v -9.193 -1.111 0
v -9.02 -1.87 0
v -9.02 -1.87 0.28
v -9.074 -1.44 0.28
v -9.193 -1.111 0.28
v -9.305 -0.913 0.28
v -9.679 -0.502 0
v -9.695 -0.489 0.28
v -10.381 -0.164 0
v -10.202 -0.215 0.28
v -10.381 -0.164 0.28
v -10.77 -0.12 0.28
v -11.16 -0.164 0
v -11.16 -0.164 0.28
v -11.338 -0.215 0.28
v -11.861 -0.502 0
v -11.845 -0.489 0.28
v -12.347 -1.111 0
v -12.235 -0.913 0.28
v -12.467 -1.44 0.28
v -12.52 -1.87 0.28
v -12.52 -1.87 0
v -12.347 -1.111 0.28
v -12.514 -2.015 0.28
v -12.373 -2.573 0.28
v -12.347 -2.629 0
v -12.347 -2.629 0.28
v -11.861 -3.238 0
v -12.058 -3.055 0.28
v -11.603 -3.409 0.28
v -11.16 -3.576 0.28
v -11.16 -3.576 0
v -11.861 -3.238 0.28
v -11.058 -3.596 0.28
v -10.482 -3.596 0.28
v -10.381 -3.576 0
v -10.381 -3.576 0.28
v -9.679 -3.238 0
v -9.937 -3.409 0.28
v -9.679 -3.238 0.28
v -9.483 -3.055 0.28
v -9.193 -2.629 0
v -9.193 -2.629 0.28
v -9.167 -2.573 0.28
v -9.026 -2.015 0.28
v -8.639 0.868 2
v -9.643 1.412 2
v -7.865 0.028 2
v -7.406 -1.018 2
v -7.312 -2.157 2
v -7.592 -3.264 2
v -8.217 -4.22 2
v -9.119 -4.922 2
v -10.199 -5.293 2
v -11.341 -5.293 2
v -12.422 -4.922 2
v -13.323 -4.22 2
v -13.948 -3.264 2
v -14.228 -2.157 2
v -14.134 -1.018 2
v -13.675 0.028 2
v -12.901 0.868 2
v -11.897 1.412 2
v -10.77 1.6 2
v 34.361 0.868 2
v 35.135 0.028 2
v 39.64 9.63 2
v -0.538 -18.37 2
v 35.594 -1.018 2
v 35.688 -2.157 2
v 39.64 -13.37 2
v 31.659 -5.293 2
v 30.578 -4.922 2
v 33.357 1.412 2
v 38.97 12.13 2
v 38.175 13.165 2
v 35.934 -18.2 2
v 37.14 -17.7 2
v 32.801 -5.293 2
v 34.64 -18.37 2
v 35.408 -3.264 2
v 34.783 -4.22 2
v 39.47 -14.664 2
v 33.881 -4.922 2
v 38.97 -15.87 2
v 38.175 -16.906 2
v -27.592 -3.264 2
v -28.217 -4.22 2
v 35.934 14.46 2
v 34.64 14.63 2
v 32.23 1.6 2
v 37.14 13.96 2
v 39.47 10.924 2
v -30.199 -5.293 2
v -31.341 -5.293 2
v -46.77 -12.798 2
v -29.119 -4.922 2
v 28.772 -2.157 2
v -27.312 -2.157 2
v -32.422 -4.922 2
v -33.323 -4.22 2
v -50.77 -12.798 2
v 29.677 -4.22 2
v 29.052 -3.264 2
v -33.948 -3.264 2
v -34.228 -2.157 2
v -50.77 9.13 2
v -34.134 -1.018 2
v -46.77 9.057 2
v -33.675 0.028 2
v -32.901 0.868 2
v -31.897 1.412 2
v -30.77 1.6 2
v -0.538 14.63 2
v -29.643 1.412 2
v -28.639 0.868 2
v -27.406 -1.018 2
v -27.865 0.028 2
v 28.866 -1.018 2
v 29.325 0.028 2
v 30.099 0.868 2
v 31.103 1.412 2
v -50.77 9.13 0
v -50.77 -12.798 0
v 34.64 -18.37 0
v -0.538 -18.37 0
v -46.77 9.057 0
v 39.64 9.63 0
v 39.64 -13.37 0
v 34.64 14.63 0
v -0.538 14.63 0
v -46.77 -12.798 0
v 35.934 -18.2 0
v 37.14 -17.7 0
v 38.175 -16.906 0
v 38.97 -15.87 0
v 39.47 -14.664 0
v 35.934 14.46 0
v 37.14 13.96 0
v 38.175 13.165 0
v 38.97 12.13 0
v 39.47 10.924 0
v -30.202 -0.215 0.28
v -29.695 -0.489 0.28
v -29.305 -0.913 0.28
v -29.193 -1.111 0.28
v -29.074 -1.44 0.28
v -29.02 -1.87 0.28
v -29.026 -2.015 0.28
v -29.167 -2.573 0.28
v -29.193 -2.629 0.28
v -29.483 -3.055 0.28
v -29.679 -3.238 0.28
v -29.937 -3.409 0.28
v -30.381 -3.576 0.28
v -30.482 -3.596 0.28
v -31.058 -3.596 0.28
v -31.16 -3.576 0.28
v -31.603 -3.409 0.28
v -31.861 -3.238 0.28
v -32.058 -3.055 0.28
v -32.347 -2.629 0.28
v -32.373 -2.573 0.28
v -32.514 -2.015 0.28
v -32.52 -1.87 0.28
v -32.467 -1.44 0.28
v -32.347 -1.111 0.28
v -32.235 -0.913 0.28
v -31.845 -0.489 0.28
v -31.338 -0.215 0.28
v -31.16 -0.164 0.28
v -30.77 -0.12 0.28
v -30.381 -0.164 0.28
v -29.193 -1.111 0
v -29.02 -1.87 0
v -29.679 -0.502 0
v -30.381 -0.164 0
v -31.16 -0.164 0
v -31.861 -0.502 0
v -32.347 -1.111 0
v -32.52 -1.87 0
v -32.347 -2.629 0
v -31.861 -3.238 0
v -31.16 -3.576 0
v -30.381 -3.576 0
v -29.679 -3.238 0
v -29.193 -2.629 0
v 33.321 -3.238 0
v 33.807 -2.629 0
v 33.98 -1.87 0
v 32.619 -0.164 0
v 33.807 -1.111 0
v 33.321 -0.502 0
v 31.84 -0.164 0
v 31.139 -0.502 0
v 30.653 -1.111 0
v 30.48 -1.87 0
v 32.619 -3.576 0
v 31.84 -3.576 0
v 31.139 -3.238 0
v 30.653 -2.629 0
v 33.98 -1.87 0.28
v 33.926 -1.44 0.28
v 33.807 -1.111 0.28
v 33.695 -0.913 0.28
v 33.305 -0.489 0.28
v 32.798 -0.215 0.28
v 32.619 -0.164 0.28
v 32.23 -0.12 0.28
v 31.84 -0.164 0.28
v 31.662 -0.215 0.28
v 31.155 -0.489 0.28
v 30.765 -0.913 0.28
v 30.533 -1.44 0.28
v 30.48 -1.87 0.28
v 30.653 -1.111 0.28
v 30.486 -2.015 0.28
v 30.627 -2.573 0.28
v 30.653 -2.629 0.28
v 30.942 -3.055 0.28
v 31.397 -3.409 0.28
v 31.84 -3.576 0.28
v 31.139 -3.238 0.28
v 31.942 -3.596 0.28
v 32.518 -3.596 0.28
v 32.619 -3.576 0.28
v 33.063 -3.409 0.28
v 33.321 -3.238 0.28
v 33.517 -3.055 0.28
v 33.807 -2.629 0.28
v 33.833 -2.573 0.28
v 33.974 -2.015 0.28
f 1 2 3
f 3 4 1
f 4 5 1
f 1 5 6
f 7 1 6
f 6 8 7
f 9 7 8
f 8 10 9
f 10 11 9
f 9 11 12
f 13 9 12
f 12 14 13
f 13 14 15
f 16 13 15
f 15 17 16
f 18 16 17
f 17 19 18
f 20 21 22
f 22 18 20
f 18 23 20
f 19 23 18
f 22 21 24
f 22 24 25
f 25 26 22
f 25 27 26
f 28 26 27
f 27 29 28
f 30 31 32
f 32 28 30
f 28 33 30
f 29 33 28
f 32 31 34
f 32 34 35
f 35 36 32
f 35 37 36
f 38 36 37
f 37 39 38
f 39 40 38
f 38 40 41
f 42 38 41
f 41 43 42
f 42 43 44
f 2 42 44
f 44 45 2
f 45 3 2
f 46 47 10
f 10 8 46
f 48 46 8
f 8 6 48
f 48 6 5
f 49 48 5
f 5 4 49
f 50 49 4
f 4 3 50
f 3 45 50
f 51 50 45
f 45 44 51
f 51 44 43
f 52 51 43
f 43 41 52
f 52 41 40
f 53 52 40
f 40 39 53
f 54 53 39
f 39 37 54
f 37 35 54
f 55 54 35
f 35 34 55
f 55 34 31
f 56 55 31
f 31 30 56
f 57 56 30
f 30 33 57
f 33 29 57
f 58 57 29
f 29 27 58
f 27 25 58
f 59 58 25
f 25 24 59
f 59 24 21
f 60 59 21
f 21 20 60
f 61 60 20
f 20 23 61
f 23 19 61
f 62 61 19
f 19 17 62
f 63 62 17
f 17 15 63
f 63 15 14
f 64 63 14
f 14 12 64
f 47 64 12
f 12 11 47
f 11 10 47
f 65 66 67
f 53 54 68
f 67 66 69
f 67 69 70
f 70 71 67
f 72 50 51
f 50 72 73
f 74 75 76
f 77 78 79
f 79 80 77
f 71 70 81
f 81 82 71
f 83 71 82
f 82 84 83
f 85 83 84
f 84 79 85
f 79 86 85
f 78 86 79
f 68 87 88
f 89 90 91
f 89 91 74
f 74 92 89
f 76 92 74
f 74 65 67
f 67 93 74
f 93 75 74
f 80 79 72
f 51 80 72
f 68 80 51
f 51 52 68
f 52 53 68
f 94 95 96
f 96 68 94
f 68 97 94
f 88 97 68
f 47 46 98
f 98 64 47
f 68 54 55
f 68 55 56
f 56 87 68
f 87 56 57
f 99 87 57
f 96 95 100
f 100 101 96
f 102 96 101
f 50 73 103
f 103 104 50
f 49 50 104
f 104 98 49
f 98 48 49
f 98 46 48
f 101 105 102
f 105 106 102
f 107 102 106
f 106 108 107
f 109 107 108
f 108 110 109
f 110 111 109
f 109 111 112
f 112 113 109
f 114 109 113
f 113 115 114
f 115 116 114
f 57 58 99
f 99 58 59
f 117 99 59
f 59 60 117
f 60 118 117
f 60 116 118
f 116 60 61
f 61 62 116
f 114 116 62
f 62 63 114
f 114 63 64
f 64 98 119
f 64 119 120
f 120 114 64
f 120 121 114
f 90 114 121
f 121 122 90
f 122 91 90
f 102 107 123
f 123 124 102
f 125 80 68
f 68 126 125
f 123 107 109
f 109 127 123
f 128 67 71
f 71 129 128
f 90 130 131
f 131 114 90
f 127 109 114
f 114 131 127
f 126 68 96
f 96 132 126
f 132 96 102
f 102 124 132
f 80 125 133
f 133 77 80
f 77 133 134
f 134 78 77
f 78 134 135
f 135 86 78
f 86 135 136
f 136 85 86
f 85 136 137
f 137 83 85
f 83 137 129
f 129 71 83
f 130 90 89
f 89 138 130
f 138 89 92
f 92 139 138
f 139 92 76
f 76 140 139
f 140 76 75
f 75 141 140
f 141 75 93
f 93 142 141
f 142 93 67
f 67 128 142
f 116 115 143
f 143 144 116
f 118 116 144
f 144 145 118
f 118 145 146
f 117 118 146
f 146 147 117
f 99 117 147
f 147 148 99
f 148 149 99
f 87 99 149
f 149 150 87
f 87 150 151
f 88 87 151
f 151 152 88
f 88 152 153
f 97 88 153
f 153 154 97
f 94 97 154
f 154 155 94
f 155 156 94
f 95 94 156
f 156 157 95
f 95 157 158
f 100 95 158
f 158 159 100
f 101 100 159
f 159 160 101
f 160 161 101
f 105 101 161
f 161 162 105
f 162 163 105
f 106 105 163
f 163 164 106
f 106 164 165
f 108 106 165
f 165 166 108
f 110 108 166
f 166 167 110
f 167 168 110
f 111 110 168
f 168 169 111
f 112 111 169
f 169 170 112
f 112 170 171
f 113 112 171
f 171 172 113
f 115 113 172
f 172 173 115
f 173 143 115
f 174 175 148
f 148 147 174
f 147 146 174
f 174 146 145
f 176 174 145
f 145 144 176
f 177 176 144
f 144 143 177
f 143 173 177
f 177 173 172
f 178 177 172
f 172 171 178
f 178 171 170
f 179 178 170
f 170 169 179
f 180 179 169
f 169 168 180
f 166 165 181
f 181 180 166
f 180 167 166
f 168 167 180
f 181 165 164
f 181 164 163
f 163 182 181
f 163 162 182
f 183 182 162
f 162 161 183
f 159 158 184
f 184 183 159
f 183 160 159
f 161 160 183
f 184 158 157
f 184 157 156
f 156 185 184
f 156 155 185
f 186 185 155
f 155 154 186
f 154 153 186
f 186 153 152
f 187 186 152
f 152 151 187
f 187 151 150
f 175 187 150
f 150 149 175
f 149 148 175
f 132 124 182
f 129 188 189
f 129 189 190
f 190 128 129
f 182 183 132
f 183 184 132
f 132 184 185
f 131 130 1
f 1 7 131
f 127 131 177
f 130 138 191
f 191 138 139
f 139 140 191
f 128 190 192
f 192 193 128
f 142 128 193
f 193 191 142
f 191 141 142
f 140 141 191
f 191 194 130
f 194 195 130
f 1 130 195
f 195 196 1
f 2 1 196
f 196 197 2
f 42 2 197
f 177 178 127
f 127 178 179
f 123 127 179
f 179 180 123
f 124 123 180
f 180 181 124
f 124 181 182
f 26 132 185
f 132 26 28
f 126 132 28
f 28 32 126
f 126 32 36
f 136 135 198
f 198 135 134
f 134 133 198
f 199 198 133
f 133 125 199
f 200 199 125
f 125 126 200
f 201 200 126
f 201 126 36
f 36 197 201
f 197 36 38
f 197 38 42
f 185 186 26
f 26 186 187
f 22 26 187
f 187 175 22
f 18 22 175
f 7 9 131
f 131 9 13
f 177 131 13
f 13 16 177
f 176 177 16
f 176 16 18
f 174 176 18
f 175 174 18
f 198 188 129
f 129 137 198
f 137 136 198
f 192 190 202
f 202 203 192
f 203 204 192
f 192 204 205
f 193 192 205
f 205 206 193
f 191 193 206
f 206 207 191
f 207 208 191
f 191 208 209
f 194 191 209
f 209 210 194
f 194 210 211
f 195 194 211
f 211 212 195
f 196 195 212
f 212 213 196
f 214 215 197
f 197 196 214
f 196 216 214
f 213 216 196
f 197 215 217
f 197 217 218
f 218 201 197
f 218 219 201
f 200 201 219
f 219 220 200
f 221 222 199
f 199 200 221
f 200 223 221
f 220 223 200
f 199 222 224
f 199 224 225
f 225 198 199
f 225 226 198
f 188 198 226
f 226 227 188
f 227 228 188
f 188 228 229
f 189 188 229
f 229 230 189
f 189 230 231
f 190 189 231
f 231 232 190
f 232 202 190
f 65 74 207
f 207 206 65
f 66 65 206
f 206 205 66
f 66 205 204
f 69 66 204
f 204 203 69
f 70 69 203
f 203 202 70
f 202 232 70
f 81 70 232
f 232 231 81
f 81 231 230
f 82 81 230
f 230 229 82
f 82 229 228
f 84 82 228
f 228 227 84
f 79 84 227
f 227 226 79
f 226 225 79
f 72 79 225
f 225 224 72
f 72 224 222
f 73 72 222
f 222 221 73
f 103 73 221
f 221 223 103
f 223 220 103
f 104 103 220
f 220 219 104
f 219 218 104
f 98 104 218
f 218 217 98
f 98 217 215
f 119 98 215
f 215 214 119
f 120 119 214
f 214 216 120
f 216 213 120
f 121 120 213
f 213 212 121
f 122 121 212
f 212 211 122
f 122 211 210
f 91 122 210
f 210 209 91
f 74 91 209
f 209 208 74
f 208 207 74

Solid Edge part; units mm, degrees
sketch "Sketch1" plane through (0, 0, 0) normal (0, 0, 1) x (1, 0, 0)
  line L0 (-50.7701, 18.3701) -> (50.7701, 18.3701)
  line L1 (50.7701, 18.3701) -> (50.7701, -18.3701)
  line L2 (50.7701, -18.3701) -> (-50.7701, -18.3701)
  line L3 (-50.7701, -18.3701) -> (-50.7701, 18.3701)
  dimension "D1" = 101.5402
  dimension "D2" = 36.7402
extrude "Protrusion1" add sketch "Sketch1" along normal blind 2
sketch "Sketch2" plane through (0, 0, 2) normal (0, 0, 1) x (0, -1, 0)
  line L0 (-14.6299, 39.6399) -> (18.3701, 39.6399)
  line L1 (18.3701, -0.5383) -> (18.3701, 39.6399)
  line L2 (18.3701, -0.5383) -> (12.7975, -46.7701)
  line L3 (12.7975, -46.7701) -> (12.7975, -50.7701)
  line L4 (12.7975, -50.7701) -> (-9.1299, -50.7701)
  line L5 (-9.0573, -46.7701) -> (-9.1299, -50.7701)
  line L6 (-9.0573, -46.7701) -> (-14.6299, -0.5383)
  line L7 (-14.6299, -0.5383) -> (-14.6299, 39.6399)
extrude "Extrusionsausschnitt_1" cut sketch "Sketch2" against normal blind 130.0765 flip side to cut
hole "Bohrung_1" at (-10.7701, -1.8701, 2) direction (0, 0, -1) diameter 3.5 end up to next countersink diameter 6.94 countersink angle 90
hole "Hole1" at (-30.7701, -1.8701, 2) direction (0, 0, -1) diameter 3.5 end up to next countersink diameter 6.94 countersink angle 90
hole "Hole2" at (32.2299, -1.8701, 2) direction (0, 0, -1) diameter 3.5 end up to next countersink diameter 6.94 countersink angle 90
fillet "Verrundung_1" radius 5 2 edges at (39.6399, -18.3701, 1) (39.6399, 14.6299, 1)
